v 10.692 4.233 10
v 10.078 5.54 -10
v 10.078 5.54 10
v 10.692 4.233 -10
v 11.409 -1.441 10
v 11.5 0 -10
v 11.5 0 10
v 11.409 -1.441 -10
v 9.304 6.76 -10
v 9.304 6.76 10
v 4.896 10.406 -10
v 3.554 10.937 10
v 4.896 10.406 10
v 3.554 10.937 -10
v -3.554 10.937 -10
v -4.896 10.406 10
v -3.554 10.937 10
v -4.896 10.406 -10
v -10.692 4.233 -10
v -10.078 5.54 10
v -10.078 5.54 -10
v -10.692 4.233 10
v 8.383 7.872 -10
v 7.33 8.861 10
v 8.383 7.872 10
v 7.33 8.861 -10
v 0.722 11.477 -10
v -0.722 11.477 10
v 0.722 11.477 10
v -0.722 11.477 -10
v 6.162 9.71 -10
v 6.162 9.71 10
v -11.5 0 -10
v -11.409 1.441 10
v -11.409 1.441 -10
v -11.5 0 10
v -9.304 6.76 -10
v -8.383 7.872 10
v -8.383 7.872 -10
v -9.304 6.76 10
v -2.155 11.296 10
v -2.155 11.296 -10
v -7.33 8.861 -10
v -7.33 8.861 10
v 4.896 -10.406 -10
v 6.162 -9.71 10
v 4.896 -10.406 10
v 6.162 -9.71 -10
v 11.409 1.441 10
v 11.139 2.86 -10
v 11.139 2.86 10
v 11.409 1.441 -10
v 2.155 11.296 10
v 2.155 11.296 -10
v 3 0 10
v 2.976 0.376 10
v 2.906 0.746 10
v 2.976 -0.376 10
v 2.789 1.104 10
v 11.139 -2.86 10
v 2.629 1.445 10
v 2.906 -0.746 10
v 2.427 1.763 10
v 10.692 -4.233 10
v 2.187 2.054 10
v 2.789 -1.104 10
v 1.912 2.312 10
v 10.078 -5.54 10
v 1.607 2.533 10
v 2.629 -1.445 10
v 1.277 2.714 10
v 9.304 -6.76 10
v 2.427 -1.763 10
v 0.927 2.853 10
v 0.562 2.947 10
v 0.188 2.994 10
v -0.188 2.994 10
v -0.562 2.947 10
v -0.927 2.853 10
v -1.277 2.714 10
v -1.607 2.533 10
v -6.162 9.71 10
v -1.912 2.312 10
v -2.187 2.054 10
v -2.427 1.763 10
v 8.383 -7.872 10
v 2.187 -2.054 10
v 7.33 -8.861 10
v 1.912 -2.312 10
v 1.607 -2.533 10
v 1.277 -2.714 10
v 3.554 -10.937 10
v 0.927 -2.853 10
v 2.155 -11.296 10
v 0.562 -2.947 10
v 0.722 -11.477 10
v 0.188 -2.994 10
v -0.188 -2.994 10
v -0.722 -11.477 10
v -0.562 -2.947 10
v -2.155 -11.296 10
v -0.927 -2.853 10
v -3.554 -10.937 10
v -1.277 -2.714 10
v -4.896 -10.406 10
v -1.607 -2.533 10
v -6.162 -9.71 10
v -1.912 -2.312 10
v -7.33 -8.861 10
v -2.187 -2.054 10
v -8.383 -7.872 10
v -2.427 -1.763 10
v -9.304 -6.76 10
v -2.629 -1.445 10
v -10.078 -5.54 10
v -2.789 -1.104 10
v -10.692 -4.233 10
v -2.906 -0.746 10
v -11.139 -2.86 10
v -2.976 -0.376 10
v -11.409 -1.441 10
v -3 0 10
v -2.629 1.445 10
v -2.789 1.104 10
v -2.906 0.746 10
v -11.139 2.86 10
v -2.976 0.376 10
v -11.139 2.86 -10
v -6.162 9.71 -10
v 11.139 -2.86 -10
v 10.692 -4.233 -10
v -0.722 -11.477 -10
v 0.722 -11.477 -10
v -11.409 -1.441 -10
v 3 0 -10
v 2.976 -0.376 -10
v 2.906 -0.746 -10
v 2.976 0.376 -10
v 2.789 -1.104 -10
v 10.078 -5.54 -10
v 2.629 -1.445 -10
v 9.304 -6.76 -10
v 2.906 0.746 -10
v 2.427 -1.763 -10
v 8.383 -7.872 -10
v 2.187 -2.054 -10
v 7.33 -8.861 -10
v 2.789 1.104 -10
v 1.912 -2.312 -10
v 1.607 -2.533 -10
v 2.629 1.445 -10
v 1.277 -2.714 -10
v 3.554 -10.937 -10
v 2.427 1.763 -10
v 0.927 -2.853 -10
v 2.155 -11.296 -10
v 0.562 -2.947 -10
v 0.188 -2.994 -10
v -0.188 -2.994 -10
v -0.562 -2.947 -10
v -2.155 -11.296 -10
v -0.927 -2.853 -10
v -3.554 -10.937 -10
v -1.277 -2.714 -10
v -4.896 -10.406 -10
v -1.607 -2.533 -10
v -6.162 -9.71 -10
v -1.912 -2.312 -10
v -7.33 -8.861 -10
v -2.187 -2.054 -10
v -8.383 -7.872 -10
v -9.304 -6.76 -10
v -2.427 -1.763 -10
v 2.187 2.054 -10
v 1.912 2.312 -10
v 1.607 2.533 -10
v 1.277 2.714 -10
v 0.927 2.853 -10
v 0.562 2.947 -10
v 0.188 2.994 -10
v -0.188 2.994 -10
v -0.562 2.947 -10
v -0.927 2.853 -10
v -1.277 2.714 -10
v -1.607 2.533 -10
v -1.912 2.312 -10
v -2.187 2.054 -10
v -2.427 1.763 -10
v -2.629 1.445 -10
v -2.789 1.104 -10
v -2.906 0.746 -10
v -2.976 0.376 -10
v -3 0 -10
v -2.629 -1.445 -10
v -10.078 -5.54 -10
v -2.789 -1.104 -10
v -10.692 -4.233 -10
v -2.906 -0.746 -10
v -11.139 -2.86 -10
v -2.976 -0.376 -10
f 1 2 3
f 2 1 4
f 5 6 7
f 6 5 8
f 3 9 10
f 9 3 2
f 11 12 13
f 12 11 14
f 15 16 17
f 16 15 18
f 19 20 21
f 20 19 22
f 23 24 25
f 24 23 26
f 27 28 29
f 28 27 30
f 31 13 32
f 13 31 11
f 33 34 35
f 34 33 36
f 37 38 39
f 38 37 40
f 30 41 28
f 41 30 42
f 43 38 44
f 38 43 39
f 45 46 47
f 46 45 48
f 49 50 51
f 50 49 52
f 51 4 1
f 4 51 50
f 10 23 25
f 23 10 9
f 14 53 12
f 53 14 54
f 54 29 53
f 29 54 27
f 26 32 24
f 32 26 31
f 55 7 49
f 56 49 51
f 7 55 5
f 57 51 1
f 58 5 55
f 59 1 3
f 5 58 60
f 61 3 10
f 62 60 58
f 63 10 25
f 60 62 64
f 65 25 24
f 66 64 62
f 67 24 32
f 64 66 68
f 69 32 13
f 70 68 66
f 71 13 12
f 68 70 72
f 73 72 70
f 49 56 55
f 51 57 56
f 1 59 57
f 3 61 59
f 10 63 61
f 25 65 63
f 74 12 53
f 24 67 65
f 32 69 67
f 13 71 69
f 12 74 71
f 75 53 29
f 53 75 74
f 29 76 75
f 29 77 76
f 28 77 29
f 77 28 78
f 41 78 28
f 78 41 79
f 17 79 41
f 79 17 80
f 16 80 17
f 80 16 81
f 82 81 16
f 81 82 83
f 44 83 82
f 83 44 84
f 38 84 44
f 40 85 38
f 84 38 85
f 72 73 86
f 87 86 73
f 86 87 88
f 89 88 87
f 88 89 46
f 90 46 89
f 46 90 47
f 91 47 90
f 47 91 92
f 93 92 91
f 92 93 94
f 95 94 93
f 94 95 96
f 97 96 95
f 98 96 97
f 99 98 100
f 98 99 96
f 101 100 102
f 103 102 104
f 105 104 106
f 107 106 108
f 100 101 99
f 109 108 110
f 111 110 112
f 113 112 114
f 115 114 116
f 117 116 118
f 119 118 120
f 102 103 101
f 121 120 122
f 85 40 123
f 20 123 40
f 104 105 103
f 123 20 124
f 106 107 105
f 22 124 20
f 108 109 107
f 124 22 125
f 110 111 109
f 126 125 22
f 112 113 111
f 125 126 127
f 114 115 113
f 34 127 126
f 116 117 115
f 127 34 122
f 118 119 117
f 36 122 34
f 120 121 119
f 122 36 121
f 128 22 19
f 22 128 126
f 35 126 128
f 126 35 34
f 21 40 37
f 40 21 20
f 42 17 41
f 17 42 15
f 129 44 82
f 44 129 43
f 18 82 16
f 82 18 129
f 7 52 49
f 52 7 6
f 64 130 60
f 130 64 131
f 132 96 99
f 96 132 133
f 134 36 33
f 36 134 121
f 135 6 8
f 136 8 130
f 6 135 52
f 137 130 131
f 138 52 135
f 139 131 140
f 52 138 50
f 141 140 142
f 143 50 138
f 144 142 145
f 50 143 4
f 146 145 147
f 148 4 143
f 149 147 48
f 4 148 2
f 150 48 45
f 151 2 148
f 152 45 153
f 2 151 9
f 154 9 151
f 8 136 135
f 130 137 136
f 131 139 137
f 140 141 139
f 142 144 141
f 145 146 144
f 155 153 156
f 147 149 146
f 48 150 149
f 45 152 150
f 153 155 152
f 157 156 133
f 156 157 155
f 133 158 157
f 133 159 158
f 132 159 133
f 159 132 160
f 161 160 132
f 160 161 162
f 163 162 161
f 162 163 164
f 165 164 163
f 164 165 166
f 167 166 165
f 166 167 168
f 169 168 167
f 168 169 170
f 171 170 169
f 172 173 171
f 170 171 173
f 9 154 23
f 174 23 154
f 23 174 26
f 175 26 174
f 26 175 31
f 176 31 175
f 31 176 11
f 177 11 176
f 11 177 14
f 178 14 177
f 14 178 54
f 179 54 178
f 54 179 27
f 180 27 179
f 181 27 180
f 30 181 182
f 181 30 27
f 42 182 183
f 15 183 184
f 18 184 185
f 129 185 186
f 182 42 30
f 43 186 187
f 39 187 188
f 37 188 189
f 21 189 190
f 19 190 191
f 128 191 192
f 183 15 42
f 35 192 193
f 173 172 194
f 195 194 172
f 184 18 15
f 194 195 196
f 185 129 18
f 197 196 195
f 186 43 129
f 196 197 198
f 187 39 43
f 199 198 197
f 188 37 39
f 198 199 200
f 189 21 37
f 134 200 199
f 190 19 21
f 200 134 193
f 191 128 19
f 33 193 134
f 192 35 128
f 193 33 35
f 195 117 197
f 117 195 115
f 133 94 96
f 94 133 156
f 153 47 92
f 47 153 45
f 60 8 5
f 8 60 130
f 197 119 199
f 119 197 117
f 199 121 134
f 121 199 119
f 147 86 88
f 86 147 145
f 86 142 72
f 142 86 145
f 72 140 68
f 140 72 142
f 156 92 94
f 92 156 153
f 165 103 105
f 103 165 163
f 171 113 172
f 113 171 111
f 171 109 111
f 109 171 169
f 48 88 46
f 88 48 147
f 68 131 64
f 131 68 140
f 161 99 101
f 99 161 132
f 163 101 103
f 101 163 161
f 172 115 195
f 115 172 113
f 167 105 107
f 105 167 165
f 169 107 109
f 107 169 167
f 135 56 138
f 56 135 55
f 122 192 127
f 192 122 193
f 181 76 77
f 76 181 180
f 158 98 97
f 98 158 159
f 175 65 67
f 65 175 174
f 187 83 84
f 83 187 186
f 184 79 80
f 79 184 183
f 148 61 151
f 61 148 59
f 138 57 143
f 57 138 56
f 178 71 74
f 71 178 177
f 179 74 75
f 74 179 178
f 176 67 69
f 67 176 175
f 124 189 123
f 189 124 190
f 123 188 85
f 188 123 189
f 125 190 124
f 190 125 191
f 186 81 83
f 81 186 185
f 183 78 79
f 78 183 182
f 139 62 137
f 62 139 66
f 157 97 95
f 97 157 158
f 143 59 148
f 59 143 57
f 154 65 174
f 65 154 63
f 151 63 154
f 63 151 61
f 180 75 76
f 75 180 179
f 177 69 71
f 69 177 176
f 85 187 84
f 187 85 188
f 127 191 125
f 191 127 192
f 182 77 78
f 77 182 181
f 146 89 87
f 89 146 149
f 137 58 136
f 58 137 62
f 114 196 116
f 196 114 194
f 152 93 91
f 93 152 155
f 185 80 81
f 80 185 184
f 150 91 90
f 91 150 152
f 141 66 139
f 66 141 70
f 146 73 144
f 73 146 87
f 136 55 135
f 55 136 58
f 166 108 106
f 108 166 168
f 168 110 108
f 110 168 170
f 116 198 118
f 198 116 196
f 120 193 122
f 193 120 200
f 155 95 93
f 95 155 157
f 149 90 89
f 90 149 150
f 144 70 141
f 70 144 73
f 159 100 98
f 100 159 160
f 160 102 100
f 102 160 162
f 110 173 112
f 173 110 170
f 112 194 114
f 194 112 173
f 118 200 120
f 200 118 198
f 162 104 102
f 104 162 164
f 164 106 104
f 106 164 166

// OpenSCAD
$fn = 50;


difference() {
	union() {
		translate(v = [0, 0, -10.0000000000]) {
			cylinder(h = 20, r = 11.5000000000);
		}
	}
	union() {
		translate(v = [0, 0, -100.0000000000]) {
			cylinder(h = 200, r = 3);
		}
	}
}
